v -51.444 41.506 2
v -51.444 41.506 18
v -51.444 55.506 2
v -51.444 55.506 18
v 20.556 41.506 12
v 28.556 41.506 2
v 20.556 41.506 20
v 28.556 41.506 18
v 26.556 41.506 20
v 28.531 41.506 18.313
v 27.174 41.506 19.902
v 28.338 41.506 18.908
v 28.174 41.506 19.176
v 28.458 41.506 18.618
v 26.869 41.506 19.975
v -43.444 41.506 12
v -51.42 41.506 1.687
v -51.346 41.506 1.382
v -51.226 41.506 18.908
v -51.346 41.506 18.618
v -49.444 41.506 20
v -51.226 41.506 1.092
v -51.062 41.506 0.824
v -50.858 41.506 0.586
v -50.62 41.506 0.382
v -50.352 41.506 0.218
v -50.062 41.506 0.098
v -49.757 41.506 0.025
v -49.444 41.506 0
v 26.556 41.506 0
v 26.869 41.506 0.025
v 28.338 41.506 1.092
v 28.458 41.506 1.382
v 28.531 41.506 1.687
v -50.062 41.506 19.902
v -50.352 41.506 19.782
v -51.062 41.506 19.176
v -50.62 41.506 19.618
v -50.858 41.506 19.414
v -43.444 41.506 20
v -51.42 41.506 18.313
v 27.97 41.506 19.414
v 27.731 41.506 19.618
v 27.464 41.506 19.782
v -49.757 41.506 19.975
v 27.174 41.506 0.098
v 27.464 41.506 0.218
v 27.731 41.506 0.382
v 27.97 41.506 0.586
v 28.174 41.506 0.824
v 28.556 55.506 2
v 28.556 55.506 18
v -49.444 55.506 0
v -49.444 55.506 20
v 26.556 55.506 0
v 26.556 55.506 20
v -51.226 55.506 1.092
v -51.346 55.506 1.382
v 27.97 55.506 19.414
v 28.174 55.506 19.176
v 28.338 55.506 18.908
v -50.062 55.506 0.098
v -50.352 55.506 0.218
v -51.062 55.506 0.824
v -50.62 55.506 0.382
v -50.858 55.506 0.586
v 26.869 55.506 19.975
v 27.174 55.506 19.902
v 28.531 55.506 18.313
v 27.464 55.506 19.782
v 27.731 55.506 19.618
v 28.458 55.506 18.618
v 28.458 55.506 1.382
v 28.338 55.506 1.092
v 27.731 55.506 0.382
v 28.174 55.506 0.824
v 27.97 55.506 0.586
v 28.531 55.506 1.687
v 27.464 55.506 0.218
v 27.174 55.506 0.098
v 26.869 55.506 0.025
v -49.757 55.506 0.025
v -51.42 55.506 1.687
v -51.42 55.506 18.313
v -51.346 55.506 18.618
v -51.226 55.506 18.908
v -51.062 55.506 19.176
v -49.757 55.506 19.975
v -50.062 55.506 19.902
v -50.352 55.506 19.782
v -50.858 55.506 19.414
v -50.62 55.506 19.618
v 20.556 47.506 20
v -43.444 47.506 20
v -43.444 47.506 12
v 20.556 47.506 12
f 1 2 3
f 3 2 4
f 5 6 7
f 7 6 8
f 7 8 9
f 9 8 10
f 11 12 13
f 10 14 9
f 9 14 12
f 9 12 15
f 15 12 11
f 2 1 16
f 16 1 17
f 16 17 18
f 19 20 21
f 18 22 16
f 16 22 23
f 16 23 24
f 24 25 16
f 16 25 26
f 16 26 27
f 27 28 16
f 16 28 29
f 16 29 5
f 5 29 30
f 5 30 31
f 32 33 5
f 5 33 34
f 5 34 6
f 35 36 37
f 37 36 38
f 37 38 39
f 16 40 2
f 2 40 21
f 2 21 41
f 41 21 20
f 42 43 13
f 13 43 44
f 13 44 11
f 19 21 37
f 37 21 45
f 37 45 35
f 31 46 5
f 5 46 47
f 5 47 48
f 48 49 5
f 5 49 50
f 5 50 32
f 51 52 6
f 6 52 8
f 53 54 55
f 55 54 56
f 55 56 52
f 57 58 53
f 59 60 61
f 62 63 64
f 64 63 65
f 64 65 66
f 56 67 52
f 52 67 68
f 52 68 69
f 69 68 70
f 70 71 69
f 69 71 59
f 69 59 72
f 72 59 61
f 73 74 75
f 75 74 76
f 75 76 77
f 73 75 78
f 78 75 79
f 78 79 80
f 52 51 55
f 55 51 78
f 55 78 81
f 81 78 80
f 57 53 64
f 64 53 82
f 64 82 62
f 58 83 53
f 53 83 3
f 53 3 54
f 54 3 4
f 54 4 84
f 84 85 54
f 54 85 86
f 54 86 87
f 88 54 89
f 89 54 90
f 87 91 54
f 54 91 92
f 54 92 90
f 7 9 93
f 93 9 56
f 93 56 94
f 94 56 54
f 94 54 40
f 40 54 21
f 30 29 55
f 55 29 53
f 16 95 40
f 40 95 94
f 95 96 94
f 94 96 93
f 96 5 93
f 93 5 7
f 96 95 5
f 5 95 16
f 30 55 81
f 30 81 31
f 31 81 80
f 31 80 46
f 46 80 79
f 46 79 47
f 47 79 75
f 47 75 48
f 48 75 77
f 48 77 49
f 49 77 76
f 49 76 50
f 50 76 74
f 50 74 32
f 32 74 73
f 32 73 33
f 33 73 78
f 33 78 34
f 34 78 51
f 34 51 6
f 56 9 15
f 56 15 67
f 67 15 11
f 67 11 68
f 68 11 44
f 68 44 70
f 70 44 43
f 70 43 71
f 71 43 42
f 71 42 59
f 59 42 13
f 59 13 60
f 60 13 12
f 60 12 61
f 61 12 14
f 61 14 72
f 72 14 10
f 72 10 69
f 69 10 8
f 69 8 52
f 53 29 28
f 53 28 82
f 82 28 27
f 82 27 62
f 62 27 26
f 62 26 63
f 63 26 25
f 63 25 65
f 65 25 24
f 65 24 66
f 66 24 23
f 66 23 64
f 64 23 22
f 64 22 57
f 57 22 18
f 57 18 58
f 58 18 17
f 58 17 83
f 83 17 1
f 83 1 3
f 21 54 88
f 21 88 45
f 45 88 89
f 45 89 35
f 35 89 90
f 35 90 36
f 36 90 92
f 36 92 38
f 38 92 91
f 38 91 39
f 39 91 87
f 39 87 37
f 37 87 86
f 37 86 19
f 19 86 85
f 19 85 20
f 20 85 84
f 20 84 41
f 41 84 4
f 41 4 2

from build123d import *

# Parameters (mm, degrees)
IZIM1_W                     = 80
IZIM1_H                     = 14
Y_KSEKLIK_EKSTR_ZYON1_DEPTH = 20
KES_EKSTR_ZYON1_DEPTH       = 8
RADYUS1_R                   = 2


with BuildPart() as part:
    # Çizim1 → Yükseklik-Ekstrüzyon1 (new body)
    with BuildSketch(Plane.XY):
        with Locations((-11.444268973, 48.50560342)):
            Rectangle(IZIM1_W, IZIM1_H)
    extrude(amount=Y_KSEKLIK_EKSTR_ZYON1_DEPTH)

    # Çizim2 → Kes-Ekstrüzyon1 (cut)
    with BuildSketch(Plane.XY.offset(20)):
        Polygon((-11.444268973, 41.50560342), (-43.444268973, 41.50560342), (-43.444268973, 47.50560342), (20.555731027, 47.50560342), (20.555731027, 41.50560342), align=None)
    extrude(amount=-KES_EKSTR_ZYON1_DEPTH, mode=Mode.SUBTRACT)

    # Radyus1
    radyus1_edges = [part.edges().sort_by_distance(p)[0] for p in [
        (28.555731027, 48.50560342, 20),
        (-51.444268973, 48.50560342, 20),
        (28.555731027, 48.50560342, 0),
        (-51.444268973, 48.50560342, 0),
    ]]
    fillet(radyus1_edges, radius=RADYUS1_R)


solid = part.part
